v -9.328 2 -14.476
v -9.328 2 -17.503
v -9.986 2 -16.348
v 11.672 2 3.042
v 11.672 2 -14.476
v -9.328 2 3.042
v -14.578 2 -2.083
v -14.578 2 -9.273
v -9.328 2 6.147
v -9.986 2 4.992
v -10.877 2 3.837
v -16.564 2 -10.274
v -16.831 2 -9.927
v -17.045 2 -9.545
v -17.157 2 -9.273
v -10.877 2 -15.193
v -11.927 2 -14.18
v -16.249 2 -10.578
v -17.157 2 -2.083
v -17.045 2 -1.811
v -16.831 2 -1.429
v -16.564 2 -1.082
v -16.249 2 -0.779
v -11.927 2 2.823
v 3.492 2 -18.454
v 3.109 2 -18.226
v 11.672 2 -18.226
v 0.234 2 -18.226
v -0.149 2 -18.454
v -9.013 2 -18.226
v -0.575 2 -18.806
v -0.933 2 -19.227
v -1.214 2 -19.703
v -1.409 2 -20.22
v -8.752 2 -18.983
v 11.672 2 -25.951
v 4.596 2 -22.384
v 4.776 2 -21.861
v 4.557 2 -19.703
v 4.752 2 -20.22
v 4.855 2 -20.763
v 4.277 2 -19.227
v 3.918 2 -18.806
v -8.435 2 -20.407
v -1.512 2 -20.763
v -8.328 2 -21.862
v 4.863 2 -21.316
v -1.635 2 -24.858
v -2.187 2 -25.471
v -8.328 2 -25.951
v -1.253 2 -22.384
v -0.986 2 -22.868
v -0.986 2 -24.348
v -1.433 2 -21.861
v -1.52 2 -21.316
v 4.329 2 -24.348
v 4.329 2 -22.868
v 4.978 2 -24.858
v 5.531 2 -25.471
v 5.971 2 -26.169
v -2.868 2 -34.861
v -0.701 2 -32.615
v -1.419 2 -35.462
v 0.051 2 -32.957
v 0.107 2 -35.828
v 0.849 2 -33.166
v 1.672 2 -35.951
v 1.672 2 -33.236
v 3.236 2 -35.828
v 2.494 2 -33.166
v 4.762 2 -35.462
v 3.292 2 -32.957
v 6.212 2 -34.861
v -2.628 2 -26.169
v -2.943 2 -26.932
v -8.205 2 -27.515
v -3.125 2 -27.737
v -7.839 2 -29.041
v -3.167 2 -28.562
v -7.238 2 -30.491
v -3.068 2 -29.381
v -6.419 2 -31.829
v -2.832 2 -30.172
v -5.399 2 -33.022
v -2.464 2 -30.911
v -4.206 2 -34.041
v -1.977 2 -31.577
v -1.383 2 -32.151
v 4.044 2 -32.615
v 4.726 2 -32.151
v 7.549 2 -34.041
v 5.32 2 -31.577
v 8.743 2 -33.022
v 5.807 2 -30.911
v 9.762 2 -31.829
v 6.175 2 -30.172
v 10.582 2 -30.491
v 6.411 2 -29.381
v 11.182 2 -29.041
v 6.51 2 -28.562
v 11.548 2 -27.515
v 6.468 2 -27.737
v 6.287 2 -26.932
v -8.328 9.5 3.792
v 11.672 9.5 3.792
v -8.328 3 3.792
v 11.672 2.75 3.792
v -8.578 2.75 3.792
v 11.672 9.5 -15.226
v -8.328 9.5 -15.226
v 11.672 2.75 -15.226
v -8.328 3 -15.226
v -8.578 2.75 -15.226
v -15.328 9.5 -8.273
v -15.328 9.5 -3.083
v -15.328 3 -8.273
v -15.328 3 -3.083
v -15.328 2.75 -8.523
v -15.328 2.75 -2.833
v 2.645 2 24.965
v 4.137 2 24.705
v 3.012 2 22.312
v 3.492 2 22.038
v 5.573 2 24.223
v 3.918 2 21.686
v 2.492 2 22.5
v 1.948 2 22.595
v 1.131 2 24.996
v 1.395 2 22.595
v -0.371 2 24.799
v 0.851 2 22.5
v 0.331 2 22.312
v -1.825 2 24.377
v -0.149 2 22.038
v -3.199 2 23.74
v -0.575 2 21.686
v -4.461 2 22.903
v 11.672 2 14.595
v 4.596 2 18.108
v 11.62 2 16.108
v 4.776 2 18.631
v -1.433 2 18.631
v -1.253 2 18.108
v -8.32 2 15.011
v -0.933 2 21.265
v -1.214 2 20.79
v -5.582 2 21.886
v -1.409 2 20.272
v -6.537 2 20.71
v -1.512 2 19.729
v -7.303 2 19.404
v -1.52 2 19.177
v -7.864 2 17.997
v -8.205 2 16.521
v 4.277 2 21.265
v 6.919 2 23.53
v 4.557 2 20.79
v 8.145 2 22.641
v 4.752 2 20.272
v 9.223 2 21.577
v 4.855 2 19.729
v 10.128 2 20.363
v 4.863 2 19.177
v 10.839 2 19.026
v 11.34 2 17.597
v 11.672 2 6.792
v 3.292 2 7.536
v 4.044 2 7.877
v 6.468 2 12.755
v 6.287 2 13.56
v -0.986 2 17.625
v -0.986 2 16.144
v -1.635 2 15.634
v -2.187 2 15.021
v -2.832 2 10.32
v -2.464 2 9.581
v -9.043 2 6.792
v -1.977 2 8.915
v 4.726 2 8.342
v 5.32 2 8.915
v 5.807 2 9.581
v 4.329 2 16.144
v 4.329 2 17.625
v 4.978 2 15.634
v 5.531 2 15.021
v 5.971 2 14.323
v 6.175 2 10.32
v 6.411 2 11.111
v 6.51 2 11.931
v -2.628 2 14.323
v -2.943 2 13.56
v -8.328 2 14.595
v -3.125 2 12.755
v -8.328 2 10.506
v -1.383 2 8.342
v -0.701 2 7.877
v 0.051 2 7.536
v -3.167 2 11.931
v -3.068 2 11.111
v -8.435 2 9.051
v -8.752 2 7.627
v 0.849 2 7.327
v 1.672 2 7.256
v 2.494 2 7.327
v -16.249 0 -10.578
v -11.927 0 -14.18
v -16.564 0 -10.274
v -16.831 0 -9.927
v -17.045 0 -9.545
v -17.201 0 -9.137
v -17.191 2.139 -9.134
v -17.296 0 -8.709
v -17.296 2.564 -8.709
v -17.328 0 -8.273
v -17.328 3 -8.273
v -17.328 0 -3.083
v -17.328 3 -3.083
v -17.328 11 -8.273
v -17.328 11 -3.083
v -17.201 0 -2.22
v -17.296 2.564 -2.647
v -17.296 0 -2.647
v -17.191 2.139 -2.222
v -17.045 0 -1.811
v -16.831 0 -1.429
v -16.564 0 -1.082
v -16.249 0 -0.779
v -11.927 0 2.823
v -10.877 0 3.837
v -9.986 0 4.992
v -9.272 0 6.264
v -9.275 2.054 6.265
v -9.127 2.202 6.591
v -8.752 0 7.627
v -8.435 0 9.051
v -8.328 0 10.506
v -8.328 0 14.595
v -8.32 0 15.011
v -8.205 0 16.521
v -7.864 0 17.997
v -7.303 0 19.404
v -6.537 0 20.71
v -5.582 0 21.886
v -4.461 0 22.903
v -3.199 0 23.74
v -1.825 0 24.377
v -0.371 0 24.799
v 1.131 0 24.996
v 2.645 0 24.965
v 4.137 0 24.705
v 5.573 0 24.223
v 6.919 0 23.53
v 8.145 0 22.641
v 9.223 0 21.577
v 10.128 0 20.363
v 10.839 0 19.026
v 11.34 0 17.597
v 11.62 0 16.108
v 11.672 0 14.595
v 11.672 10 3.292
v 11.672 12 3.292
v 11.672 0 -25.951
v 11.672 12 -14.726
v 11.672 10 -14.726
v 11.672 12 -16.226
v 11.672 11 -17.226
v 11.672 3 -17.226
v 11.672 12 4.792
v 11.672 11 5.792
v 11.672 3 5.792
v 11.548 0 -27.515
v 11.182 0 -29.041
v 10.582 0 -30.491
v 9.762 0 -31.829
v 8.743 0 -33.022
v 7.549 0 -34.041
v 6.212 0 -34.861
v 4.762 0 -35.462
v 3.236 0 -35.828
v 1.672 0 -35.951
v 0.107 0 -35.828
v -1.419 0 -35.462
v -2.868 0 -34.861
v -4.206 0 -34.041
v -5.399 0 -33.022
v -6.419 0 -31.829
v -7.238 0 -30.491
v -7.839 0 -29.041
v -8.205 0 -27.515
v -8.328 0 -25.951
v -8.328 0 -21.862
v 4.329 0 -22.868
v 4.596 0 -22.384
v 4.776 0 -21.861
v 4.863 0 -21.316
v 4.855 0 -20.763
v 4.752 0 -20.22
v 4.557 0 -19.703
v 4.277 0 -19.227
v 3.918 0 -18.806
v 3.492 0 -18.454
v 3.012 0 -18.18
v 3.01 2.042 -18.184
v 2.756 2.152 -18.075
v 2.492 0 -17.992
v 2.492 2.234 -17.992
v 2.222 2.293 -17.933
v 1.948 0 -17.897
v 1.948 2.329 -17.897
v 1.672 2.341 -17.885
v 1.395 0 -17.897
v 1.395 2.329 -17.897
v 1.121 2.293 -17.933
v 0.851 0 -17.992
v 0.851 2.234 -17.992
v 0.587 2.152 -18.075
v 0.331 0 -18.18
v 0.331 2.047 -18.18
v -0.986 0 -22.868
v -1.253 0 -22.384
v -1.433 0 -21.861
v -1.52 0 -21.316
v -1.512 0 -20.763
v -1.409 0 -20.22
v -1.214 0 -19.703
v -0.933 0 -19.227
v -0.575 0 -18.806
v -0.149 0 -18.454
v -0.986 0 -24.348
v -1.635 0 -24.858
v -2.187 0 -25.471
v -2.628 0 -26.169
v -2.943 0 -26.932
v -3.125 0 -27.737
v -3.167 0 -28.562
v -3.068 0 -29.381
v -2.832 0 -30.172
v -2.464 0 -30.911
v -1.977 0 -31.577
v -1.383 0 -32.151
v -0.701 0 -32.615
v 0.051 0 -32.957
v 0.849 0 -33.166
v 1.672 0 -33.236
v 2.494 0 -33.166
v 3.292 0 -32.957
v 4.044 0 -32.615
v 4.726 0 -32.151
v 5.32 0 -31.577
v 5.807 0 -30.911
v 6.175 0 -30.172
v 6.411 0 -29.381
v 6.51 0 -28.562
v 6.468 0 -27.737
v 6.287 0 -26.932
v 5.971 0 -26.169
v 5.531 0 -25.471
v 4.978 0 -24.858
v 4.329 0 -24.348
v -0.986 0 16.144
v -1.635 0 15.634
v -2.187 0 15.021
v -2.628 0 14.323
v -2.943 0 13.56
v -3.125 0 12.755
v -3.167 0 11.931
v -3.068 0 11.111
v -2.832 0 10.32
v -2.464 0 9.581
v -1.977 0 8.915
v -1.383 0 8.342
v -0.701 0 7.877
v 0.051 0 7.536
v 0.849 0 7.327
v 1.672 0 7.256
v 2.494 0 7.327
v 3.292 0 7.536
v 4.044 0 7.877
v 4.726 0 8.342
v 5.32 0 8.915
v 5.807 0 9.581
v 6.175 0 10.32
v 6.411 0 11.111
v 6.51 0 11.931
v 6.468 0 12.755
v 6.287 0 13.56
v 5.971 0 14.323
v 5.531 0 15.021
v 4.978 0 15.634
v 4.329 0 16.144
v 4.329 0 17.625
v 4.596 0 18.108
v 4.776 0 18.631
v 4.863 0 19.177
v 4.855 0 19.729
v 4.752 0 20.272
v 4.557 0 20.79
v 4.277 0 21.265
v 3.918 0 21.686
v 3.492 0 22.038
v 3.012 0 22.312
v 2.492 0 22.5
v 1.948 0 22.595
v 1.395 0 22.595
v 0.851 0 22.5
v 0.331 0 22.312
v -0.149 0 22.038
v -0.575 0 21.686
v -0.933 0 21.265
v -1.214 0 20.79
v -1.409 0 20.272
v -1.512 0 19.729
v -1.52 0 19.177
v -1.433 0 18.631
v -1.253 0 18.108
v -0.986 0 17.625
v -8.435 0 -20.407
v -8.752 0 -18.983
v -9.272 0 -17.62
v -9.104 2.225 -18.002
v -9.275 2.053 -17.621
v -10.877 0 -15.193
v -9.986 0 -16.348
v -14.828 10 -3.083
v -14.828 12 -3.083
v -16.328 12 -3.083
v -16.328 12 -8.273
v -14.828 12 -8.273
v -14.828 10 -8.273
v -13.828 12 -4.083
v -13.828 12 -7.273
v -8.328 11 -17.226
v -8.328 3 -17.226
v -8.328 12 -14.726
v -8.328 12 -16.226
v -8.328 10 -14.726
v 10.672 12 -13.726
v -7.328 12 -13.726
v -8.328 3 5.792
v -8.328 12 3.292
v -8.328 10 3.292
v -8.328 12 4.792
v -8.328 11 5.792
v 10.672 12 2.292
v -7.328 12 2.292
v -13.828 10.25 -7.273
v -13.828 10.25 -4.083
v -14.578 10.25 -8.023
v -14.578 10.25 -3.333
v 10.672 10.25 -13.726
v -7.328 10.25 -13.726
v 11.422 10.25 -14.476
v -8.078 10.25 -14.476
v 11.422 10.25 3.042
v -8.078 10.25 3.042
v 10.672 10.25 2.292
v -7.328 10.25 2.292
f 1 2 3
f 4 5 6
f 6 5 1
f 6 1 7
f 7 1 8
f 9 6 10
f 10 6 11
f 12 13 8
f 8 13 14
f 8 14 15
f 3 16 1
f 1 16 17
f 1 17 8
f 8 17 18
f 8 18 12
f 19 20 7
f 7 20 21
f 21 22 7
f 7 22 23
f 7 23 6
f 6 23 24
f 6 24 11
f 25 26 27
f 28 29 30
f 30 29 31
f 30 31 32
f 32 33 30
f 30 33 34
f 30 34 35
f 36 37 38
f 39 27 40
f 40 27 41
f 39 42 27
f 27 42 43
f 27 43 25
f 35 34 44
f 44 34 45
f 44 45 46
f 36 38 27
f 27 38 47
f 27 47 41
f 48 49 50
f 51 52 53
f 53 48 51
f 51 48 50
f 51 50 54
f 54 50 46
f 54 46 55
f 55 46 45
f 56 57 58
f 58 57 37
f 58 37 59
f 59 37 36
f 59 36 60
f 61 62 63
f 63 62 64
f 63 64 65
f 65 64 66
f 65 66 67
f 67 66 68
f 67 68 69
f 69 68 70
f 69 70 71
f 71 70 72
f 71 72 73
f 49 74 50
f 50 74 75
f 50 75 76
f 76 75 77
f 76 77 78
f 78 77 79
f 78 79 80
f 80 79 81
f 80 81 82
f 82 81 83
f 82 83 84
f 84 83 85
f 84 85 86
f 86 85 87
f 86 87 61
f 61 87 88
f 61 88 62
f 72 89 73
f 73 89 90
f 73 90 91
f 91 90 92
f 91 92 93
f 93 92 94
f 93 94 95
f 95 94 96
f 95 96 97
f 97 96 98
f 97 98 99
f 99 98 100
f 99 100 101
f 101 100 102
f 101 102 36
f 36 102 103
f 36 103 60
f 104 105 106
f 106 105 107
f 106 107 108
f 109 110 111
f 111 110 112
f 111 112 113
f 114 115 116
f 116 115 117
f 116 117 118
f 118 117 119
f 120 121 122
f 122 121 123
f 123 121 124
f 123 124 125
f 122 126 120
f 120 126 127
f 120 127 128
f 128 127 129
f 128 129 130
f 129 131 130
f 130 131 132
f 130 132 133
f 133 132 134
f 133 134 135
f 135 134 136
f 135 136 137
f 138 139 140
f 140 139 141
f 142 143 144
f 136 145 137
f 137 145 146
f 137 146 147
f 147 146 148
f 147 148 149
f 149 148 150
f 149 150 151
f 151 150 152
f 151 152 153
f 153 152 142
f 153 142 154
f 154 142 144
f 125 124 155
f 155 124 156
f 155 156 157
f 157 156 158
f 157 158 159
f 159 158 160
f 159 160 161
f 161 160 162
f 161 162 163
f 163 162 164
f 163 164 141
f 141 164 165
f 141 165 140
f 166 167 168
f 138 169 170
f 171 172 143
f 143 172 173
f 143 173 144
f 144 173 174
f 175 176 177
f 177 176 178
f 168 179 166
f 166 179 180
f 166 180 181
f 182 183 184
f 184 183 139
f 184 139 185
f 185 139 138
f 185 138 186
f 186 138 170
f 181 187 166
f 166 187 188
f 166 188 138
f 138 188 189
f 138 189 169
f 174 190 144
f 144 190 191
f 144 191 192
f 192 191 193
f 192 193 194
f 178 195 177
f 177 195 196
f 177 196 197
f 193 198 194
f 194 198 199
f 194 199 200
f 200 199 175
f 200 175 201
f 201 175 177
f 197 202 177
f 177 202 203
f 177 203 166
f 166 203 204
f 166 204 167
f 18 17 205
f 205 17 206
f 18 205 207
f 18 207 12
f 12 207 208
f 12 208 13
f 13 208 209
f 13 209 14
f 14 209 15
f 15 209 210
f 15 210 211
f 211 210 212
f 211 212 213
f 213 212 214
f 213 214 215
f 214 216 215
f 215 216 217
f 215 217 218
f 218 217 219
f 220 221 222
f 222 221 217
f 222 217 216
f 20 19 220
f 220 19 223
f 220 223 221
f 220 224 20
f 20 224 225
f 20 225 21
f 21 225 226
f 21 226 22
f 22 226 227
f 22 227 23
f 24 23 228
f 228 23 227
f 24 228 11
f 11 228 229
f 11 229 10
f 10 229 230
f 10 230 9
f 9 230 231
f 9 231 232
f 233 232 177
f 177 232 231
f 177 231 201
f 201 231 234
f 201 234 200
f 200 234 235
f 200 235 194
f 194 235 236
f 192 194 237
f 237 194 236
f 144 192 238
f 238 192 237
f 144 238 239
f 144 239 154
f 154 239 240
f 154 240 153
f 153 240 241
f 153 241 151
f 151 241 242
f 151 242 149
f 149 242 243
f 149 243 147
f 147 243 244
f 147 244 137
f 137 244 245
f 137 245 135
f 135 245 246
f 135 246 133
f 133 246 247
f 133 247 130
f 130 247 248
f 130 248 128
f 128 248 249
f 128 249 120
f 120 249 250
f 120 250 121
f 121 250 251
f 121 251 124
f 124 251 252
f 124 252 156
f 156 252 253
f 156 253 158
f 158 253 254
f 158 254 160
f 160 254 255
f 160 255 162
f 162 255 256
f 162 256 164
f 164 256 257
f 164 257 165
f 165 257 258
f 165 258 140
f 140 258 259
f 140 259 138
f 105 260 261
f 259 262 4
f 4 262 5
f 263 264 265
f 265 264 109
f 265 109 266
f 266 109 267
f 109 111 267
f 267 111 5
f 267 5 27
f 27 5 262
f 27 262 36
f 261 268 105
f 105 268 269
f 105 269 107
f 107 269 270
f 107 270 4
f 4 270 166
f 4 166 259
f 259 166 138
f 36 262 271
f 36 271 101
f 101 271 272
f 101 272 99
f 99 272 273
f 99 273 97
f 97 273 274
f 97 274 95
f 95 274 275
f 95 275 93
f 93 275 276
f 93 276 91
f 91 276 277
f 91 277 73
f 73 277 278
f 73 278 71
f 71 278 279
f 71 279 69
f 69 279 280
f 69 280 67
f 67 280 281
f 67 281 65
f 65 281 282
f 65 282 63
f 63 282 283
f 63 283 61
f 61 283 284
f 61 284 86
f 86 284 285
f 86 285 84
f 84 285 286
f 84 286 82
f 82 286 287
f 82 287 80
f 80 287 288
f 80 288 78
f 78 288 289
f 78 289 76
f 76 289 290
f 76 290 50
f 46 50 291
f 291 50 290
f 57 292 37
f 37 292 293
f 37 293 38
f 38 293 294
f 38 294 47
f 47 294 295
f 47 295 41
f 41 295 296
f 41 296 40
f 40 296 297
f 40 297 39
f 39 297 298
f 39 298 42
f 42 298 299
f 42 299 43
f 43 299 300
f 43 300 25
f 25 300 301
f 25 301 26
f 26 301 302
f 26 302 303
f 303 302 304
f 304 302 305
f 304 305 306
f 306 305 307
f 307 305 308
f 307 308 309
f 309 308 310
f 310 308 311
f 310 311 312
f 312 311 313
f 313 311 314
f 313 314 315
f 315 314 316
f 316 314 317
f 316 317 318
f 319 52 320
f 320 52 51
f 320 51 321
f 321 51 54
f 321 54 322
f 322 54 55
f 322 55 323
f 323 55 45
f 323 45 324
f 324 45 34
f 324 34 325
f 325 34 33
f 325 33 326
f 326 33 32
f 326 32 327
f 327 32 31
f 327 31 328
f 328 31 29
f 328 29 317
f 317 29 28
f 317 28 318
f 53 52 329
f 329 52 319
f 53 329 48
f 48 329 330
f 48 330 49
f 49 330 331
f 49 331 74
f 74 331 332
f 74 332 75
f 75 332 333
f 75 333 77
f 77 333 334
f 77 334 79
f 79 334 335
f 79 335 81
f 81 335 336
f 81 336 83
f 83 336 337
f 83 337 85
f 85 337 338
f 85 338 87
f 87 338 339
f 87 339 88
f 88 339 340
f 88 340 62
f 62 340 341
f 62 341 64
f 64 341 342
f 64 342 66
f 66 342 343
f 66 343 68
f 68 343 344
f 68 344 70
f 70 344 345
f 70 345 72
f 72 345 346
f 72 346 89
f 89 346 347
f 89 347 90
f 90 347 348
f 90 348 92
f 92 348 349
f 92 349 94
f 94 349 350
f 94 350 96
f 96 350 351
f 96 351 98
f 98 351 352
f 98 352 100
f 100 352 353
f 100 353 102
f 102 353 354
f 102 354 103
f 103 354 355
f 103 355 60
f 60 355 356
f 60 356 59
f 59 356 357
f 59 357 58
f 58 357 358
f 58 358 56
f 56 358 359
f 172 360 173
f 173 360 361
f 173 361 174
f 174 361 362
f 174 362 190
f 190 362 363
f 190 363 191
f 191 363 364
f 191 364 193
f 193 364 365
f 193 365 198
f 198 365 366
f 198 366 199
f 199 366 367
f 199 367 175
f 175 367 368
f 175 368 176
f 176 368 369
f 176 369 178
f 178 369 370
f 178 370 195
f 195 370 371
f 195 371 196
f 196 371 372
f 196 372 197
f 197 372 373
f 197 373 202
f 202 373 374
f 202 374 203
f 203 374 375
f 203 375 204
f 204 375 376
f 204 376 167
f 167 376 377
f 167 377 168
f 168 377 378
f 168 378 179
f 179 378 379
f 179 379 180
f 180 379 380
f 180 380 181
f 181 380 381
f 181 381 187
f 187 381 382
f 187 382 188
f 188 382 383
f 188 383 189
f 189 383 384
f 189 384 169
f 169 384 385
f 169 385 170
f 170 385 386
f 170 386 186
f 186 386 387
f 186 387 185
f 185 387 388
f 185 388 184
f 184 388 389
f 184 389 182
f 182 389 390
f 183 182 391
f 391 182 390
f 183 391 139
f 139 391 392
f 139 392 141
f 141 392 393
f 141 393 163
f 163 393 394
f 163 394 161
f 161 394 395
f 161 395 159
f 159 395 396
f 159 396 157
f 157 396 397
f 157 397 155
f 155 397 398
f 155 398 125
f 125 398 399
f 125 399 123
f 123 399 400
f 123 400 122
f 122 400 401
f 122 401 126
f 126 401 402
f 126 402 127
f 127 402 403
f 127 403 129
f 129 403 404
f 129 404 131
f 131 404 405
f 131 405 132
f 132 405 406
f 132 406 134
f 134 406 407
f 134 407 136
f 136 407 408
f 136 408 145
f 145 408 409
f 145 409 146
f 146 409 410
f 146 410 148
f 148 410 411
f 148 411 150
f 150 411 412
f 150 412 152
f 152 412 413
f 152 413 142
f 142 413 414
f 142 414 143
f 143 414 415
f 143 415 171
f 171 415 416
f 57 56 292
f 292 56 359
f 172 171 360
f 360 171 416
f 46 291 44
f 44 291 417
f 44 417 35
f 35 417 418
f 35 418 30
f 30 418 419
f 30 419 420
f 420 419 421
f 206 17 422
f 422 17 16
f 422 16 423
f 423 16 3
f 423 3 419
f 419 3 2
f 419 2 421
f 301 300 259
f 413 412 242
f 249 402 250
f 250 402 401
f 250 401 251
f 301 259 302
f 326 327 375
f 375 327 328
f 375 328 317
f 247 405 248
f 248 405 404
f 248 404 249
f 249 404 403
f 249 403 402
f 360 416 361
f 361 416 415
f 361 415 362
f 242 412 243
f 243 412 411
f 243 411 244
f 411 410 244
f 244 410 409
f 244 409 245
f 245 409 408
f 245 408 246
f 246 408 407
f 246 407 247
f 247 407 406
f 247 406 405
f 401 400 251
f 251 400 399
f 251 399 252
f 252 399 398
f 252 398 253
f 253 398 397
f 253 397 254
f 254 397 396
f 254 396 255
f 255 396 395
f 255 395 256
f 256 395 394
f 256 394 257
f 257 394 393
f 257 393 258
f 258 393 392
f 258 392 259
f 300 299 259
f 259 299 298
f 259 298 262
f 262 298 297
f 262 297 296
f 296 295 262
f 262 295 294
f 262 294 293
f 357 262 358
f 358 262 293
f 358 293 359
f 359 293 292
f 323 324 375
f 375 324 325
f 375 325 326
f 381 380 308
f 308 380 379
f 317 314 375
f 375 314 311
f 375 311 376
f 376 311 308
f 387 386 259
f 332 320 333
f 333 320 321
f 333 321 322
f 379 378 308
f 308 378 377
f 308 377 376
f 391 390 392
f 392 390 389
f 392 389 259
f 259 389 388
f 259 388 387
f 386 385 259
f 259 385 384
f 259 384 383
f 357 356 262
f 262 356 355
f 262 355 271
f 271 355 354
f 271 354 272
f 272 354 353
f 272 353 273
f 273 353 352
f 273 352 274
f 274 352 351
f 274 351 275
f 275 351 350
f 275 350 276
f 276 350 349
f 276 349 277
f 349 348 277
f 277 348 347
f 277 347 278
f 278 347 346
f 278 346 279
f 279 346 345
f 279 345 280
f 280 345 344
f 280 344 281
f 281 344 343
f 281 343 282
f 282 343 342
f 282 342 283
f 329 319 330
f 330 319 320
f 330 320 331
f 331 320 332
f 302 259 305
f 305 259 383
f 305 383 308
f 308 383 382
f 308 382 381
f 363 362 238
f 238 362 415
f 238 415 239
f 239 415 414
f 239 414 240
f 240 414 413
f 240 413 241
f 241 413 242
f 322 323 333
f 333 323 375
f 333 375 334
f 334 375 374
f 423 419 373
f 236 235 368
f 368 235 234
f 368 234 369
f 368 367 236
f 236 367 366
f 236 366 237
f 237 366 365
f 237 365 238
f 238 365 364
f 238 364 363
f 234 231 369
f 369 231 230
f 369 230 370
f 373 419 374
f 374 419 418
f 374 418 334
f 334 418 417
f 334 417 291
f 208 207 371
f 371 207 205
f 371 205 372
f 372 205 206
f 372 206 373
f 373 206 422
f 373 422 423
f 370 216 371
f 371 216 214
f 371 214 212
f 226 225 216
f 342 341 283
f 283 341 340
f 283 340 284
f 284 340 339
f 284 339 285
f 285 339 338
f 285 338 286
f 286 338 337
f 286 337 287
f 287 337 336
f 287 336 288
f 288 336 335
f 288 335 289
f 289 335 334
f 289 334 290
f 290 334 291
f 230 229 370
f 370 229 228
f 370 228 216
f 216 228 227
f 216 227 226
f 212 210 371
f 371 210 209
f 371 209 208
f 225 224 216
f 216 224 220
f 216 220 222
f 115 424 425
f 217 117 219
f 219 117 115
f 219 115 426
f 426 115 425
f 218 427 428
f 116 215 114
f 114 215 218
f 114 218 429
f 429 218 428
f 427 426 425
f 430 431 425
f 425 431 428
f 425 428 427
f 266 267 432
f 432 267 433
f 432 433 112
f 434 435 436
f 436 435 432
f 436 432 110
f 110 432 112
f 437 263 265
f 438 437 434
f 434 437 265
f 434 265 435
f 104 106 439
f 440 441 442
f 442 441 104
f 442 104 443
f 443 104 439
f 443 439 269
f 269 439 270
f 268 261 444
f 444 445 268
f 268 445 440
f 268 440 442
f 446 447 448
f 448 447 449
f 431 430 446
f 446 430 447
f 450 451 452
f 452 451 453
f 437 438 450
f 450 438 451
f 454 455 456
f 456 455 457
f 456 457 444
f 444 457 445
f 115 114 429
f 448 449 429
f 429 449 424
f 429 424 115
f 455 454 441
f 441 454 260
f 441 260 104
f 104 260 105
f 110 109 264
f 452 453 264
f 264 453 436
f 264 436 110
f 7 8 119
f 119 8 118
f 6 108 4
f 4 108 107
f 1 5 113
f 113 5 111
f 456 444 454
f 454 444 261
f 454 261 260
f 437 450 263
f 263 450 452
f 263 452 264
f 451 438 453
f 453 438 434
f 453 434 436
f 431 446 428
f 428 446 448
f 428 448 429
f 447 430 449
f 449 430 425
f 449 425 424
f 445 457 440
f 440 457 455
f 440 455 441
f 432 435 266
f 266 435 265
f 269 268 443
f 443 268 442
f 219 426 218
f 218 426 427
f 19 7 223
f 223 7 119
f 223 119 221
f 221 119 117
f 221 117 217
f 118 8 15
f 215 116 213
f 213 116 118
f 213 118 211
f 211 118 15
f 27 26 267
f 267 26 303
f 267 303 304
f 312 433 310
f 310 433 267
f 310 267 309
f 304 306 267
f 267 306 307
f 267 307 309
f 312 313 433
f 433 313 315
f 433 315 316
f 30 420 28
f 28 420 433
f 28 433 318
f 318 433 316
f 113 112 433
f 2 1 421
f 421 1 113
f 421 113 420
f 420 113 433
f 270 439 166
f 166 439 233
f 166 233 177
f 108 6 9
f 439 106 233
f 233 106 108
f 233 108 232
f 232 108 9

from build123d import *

# Parameters (mm, degrees)
BOSS_EXTRUDE3_DEPTH = 2
SKETCH2_W           = 2
SKETCH2_H           = 5.189750324
SKETCH2_W_2         = 20
SKETCH2_H_2         = 2
BOSS_EXTRUDE4_DEPTH = 10
SKETCH3_W           = 5.189750324
SKETCH3_H           = 1.75
BOSS_EXTRUDE5_DEPTH = 1.5
SKETCH4_W           = 20
SKETCH4_H           = 1.75
BOSS_EXTRUDE6_DEPTH = 1.5
SKETCH5_W           = 20
SKETCH5_H           = 1.75
BOSS_EXTRUDE7_DEPTH = 1.5
CHAMFER1_SIZE       = 0.75
CHAMFER2_SIZE       = 1


with BuildPart() as part:
    # Sketch1 → Boss-Extrude3 (new body)
    with BuildSketch(Plane(origin=(0, 0, 0), x_dir=(1, 0, 0), z_dir=(0, 1, 0))):
        with BuildLine():
            Line((-11.926539406, 14.179618856), (-16.248936601, 10.577621193))
            ThreePointArc((-16.248936601, 10.577621193), (-17.045151666, 9.545423543), (-17.328383402, 8.272957354))
            Line((-17.328383402, 8.272957354), (-17.328383402, 3.08320703))
            ThreePointArc((-17.328383402, 3.08320703), (-17.045151666, 1.810740841), (-16.248936601, 0.778543191))
            Line((-16.248936601, 0.778543191), (-11.926539406, -2.823454472))
            ThreePointArc((-11.926539406, -2.823454472), (-9.27248919, -6.264113306), (-8.328383402, -10.505667268))
            Line((-8.328383402, -10.505667268), (-8.328383402, -14.594989625))
            Line((-8.328383402, -14.594989625), (-8.319708249, -15.011436268))
            ThreePointArc((-8.319708249, -15.011436268), (1.888560246, -25.009267244), (11.671616598, -14.594989625))
            Line((11.671616598, -14.594989625), (11.671616598, -5.821917808))
            Line((11.671616598, -5.821917808), (11.671616598, 17.178082192))
            Line((11.671616598, 17.178082192), (11.671616598, 25.951154008))
            ThreePointArc((11.671616598, 25.951154008), (1.671616598, 35.951154008), (-8.328383402, 25.951154008))
            Line((-8.328383402, 25.951154008), (-8.328383402, 21.861831652))
            ThreePointArc((-8.328383402, 21.861831652), (-9.27248919, 17.620277689), (-11.926539406, 14.179618856))
        make_face()
        with BuildLine():
            ThreePointArc((4.32930425, -16.144178085), (1.671616598, -7.256310151), (-0.986071055, -16.144178085))
            Line((-0.986071055, -16.144178085), (-0.986071055, -17.62452967))
            ThreePointArc((-0.986071055, -17.62452967), (1.671616598, -22.60685858), (4.32930425, -17.62452967))
            Line((4.32930425, -17.62452967), (4.32930425, -16.144178085))
        make_face(mode=Mode.SUBTRACT)
        with BuildLine():
            ThreePointArc((-0.986071055, 22.867739584), (1.671616598, 17.885410674), (4.32930425, 22.867739584))
            Line((4.32930425, 22.867739584), (4.32930425, 24.348091169))
            ThreePointArc((4.32930425, 24.348091169), (1.671616598, 33.235959102), (-0.986071055, 24.348091169))
            Line((-0.986071055, 24.348091169), (-0.986071055, 22.867739584))
        make_face(mode=Mode.SUBTRACT)
    extrude(amount=BOSS_EXTRUDE3_DEPTH)

    # Sketch2 → Boss-Extrude4 (add)
    with BuildSketch(Plane(origin=(0, 2, 0), x_dir=(1, 0, 0), z_dir=(0, 1, 0))):
        with Locations((-16.328383402, 5.678082192)):
            Rectangle(SKETCH2_W, SKETCH2_H)
        with Locations((1.671616598, 16.226428568)):
            Rectangle(SKETCH2_W_2, SKETCH2_H_2)
        with Locations((1.671616598, -4.792288058)):
            Rectangle(SKETCH2_W_2, SKETCH2_H_2)
    extrude(amount=BOSS_EXTRUDE4_DEPTH)

    # Sketch3 → Boss-Extrude5 (add)
    with BuildSketch(Plane(origin=(-15.328383402, 0, 0), x_dir=(0, 0, -1), z_dir=(1, 0, 0))):
        with Locations((5.678082192, 11.125)):
            Rectangle(SKETCH3_W, SKETCH3_H)
    extrude(amount=BOSS_EXTRUDE5_DEPTH)

    # Sketch4 → Boss-Extrude6 (add)
    with BuildSketch(Plane.XY.offset(-15.226428568)):
        with Locations((1.671616598, 11.125)):
            Rectangle(SKETCH4_W, SKETCH4_H)
    extrude(amount=BOSS_EXTRUDE6_DEPTH)

    # Sketch5 → Boss-Extrude7 (add)
    with BuildSketch(Plane(origin=(0, 0, 3.792288058), x_dir=(-1, 0, 0), z_dir=(0, 0, -1))):
        with Locations((-1.671616598, 11.125)):
            Rectangle(SKETCH5_W, SKETCH5_H)
    extrude(amount=BOSS_EXTRUDE7_DEPTH)

    # Chamfer1
    chamfer1_edges = [part.edges().sort_by_distance(p)[0] for p in [
        (-15.328383402, 10.25, -5.678082192),
        (1.671616598, 10.25, -15.226428568),
        (1.671616598, 10.25, 3.792288058),
        (-15.328383402, 2, -5.678082192),
        (1.671616598, 2, -15.226428568),
        (1.671616598, 2, 3.792288058),
    ]]
    chamfer(chamfer1_edges, length=CHAMFER1_SIZE)

    # Chamfer2
    # the kernel refuses this chamfer: 1 mm, written as the material it adds along each edge
    with BuildSketch(Plane(origin=(-12.006700414, 2, -3.08320703), x_dir=(0, 0, 1), z_dir=(-1, 0, 0))) as chamfer2_piece_1_section:
        Polygon((CHAMFER2_SIZE, 0), (0, CHAMFER2_SIZE), (0, 0), align=None)
    chamfer2_piece_1 = extrude(amount=7.893365976, mode=Mode.PRIVATE)
    chamfer2_piece_1 = split(chamfer2_piece_1, bisect_by=Plane(origin=(-15.328383402, 2, -3.08320703), z_dir=(-1, 0, 0)), keep=Keep.TOP, mode=Mode.PRIVATE)
    chamfer2_piece_1 = chamfer2_piece_1 & Plane(origin=(-14.328383402, 2, -3.08320703), x_dir=(-1, 0, 0), z_dir=(0, -1, 0)) * Cylinder(3, 20, mode=Mode.PRIVATE)
    add(chamfer2_piece_1)
    with BuildSketch(Plane(origin=(-12.006700414, 2, -3.08320703), x_dir=(0, 0, 1), z_dir=(-1, 0, 0))) as chamfer2_piece_2_section:
        Polygon((CHAMFER2_SIZE, 0), (0, CHAMFER2_SIZE), (0, 0), align=None)
    chamfer2_piece_2 = extrude(amount=7.893365976, mode=Mode.PRIVATE)
    chamfer2_piece_2 = split(chamfer2_piece_2, bisect_by=Plane(origin=(-15.328383402, 2, -3.08320703), z_dir=(1, 0, 0)), keep=Keep.TOP, mode=Mode.PRIVATE)
    chamfer2_piece_2 = split(chamfer2_piece_2, bisect_by=Plane(origin=(-13.292541908, 0.714158506, -3.08320703), z_dir=(-0.7071067811865476, -0.7071067811865476, 0)), keep=Keep.TOP, mode=Mode.PRIVATE)
    add(chamfer2_piece_2)
    with BuildSketch(Plane(origin=(-19.90006639, 2, -8.272957354), x_dir=(0, 0, -1), z_dir=(1, 0, 0))) as chamfer2_piece_3_section:
        Polygon((CHAMFER2_SIZE, 0), (0, CHAMFER2_SIZE), (0, 0), align=None)
    chamfer2_piece_3 = extrude(amount=7.893365976, mode=Mode.PRIVATE)
    chamfer2_piece_3 = split(chamfer2_piece_3, bisect_by=Plane(origin=(-17.239224896, 4.660841494, -8.272957354), z_dir=(-0.7071067811865476, -0.7071067811865476, 0)), keep=Keep.TOP, mode=Mode.PRIVATE)
    chamfer2_piece_3 = chamfer2_piece_3 & Plane(origin=(-14.328383402, 2, -8.272957354), x_dir=(-0.6401843996644775, 0, -0.7682212795973778), z_dir=(0, -1, 0)) * Cylinder(3, 20, mode=Mode.PRIVATE)
    add(chamfer2_piece_3)
    with BuildSketch(Plane(origin=(-19.90006639, 2, -8.272957354), x_dir=(0, 0, -1), z_dir=(1, 0, 0))) as chamfer2_piece_4_section:
        Polygon((CHAMFER2_SIZE, 0), (0, CHAMFER2_SIZE), (0, 0), align=None)
    chamfer2_piece_4 = extrude(amount=7.893365976, mode=Mode.PRIVATE)
    chamfer2_piece_4 = split(chamfer2_piece_4, bisect_by=Plane(origin=(-15.328383402, 2, -8.272957354), z_dir=(-1, 0, 0)), keep=Keep.TOP, mode=Mode.PRIVATE)
    chamfer2_piece_4 = split(chamfer2_piece_4, bisect_by=Plane(origin=(-17.239224896, 4.660841494, -8.272957354), z_dir=(0.7071067811865476, 0.7071067811865476, 0)), keep=Keep.TOP, mode=Mode.PRIVATE)
    add(chamfer2_piece_4)
    with BuildSketch(Plane(origin=(-8.328383402, 2, -11.90474558), x_dir=(-1, 0, 0), z_dir=(0, 0, -1))) as chamfer2_piece_5_section:
        Polygon((CHAMFER2_SIZE, 0), (0, CHAMFER2_SIZE), (0, 0), align=None)
    chamfer2_piece_5 = extrude(amount=5.321682988, mode=Mode.PRIVATE)
    chamfer2_piece_5 = split(chamfer2_piece_5, bisect_by=Plane(origin=(-8.328383402, 2, -15.226428568), z_dir=(0, 0, -1)), keep=Keep.TOP, mode=Mode.PRIVATE)
    add(chamfer2_piece_5)
    with BuildSketch(Plane(origin=(-8.328383402, 2, -11.90474558), x_dir=(-1, 0, 0), z_dir=(0, 0, -1))) as chamfer2_piece_6_section:
        Polygon((CHAMFER2_SIZE, 0), (0, CHAMFER2_SIZE), (0, 0), align=None)
    chamfer2_piece_6 = extrude(amount=7.893365976, mode=Mode.PRIVATE)
    chamfer2_piece_6 = split(chamfer2_piece_6, bisect_by=Plane(origin=(-8.328383402, 2, -15.226428568), z_dir=(0, 0, 1)), keep=Keep.TOP, mode=Mode.PRIVATE)
    chamfer2_piece_6 = split(chamfer2_piece_6, bisect_by=Plane(origin=(-8.328383402, 0.714158506, -13.190587074), z_dir=(0, -0.7071067811865476, -0.7071067811865476)), keep=Keep.TOP, mode=Mode.PRIVATE)
    add(chamfer2_piece_6)
    with BuildSketch(Plane(origin=(11.671616598, 2, -17.226428568), x_dir=(0, 0, -1), z_dir=(-1, 0, 0))) as chamfer2_piece_7_section:
        Polygon((CHAMFER2_SIZE, 0), (0, -CHAMFER2_SIZE), (0, 0), align=None)
    chamfer2_piece_7 = extrude(amount=20, mode=Mode.PRIVATE)
    chamfer2_piece_7 = chamfer2_piece_7 - Plane(origin=(1.671616598, 2, -21.085410674), x_dir=(-0.8305273914033934, 0, -0.5569777842326162), z_dir=(0, -1, 0)) * Cylinder(3.2, 44, mode=Mode.PRIVATE)
    add(chamfer2_piece_7)
    with BuildSketch(Plane(origin=(-8.328383402, 2, 5.792288058), x_dir=(-1, 0, 0), z_dir=(0, 0, -1))) as chamfer2_piece_8_section:
        Polygon((CHAMFER2_SIZE, 0), (0, CHAMFER2_SIZE), (0, 0), align=None)
    chamfer2_piece_8 = extrude(amount=5.321682988, mode=Mode.PRIVATE)
    chamfer2_piece_8 = split(chamfer2_piece_8, bisect_by=Plane(origin=(-8.328383402, 2, 3.792288058), z_dir=(0, 0, 1)), keep=Keep.TOP, mode=Mode.PRIVATE)
    add(chamfer2_piece_8)
    with BuildSketch(Plane(origin=(-8.328383402, 2, 5.792288058), x_dir=(-1, 0, 0), z_dir=(0, 0, -1))) as chamfer2_piece_9_section:
        Polygon((CHAMFER2_SIZE, 0), (0, CHAMFER2_SIZE), (0, 0), align=None)
    chamfer2_piece_9 = extrude(amount=5.321682988, mode=Mode.PRIVATE)
    chamfer2_piece_9 = split(chamfer2_piece_9, bisect_by=Plane(origin=(-8.328383402, 3.375, 4.417288058), z_dir=(0, -0.7071067811865476, 0.7071067811865476)), keep=Keep.TOP, mode=Mode.PRIVATE)
    add(chamfer2_piece_9)
    with BuildSketch(Plane(origin=(11.671616598, 2, 5.792288058), x_dir=(0, 0, 1), z_dir=(-1, 0, 0))) as chamfer2_piece_10:
        Polygon((CHAMFER2_SIZE, 0), (0, CHAMFER2_SIZE), (0, 0), align=None)
    extrude(amount=20)
    with BuildSketch(Plane(origin=(-8.328383402, 2, -11.90474558), x_dir=(-1, 0, 0), z_dir=(0, 0, -1))) as chamfer2_piece_11a_section:
        Polygon((CHAMFER2_SIZE, 0), (0, CHAMFER2_SIZE), (0, 0), align=None)
    chamfer2_piece_11a = extrude(amount=7.893365976, mode=Mode.PRIVATE)
    chamfer2_piece_11a = chamfer2_piece_11a - Plane(origin=(-18.328383402, 2, -21.861831652), x_dir=(1, 0, 0), z_dir=(0, -1, 0)) * Cylinder(10, 20, mode=Mode.PRIVATE)
    chamfer2_piece_11a = split(chamfer2_piece_11a, bisect_by=Plane(origin=(-8.328383402, 2, -17.226428568), z_dir=(0, 0, -1)), keep=Keep.TOP, mode=Mode.PRIVATE)
    with BuildSketch(Plane(origin=(11.671616598, 2, -17.226428568), x_dir=(0, 0, -1), z_dir=(-1, 0, 0))) as chamfer2_piece_11b_section:
        Polygon((CHAMFER2_SIZE, 0), (0, -CHAMFER2_SIZE), (0, 0), align=None)
    chamfer2_piece_11b = extrude(amount=22.571682988, mode=Mode.PRIVATE)
    chamfer2_piece_11b = chamfer2_piece_11b - Plane(origin=(-18.328383402, 2, -21.861831652), x_dir=(1, 0, 0), z_dir=(0, -1, 0)) * Cylinder(10, 50, mode=Mode.PRIVATE)
    chamfer2_piece_11b = split(chamfer2_piece_11b, bisect_by=Plane(origin=(-8.328383402, 2, -17.226428568), z_dir=(-1, 0, 0)), keep=Keep.TOP, mode=Mode.PRIVATE)
    chamfer2_piece_11 = chamfer2_piece_11a & chamfer2_piece_11b
    add(chamfer2_piece_11)
    with BuildSketch(Plane(origin=(11.671616598, 2, 5.792288058), x_dir=(0, 0, 1), z_dir=(-1, 0, 0))) as chamfer2_piece_12a_section:
        Polygon((CHAMFER2_SIZE, 0), (0, CHAMFER2_SIZE), (0, 0), align=None)
    chamfer2_piece_12a = extrude(amount=22.571682988, mode=Mode.PRIVATE)
    chamfer2_piece_12a = split(chamfer2_piece_12a, bisect_by=Plane(origin=(-8.328383402, 2, 5.792288058), z_dir=(-1, 0, 0)), keep=Keep.TOP, mode=Mode.PRIVATE)
    chamfer2_piece_12a = chamfer2_piece_12a - Plane(origin=(-18.328383402, 2, 10.505667268), x_dir=(0.6401843996644763, 0, -0.7682212795973788), z_dir=(0, -1, 0)) * Cylinder(10, 50, mode=Mode.PRIVATE)
    with BuildSketch(Plane(origin=(-8.328383402, 2, 8.363971046), x_dir=(-1, 0, 0), z_dir=(0, 0, -1))) as chamfer2_piece_12b_section:
        Polygon((CHAMFER2_SIZE, 0), (0, CHAMFER2_SIZE), (0, 0), align=None)
    chamfer2_piece_12b = extrude(amount=7.893365976, mode=Mode.PRIVATE)
    chamfer2_piece_12b = split(chamfer2_piece_12b, bisect_by=Plane(origin=(-8.328383402, 2, 5.792288058), z_dir=(0, 0, 1)), keep=Keep.TOP, mode=Mode.PRIVATE)
    chamfer2_piece_12b = chamfer2_piece_12b - Plane(origin=(-18.328383402, 2, 10.505667268), x_dir=(0.6401843996644763, 0, -0.7682212795973788), z_dir=(0, -1, 0)) * Cylinder(10, 20, mode=Mode.PRIVATE)
    chamfer2_piece_12 = chamfer2_piece_12a & chamfer2_piece_12b
    add(chamfer2_piece_12)
    # the kernel refuses this chamfer: 1 mm, written as the material it takes off along each edge
    with BuildSketch(Plane(origin=(11.671616598, 14.571682988, 2.292288058), x_dir=(-1, 0, 0), z_dir=(0, -1, 0)), Plane(origin=(-13.828383402, 7.678317012, -8.272957354), x_dir=(0, 0, 1), z_dir=(0, 1, 0)), Plane(origin=(-8.328383402, 7.678317012, 2.292288058), x_dir=(1, 0, 0), z_dir=(0, 1, 0))) as chamfer2_2_piece_1:
        Polygon((CHAMFER2_SIZE, 0), (0, -CHAMFER2_SIZE), (0, 0), align=None)
    extrude(amount=6.893365976, mode=Mode.SUBTRACT)
    with BuildSketch(Plane(origin=(11.671616598, 14.571682988, -13.726428568), x_dir=(-1, 0, 0), z_dir=(0, -1, 0)), Plane(origin=(-8.328383402, 7.678317012, -13.726428568), x_dir=(1, 0, 0), z_dir=(0, 1, 0)), Plane(origin=(-13.828383402, 14.571682988, -3.08320703), x_dir=(-1, 0, 0), z_dir=(0, -1, 0))) as chamfer2_2_piece_2:
        Polygon((CHAMFER2_SIZE, 0), (0, CHAMFER2_SIZE), (0, 0), align=None)
    extrude(amount=6.893365976, mode=Mode.SUBTRACT)
    with BuildSketch(Plane(origin=(14.243299586, 12, -17.226428568), x_dir=(0, -1, 0), z_dir=(-1, 0, 0)), Plane(origin=(14.243299586, 12, 5.792288058), x_dir=(0, 0, -1), z_dir=(-1, 0, 0))) as chamfer2_2_piece_3:
        Polygon((CHAMFER2_SIZE, 0), (0, CHAMFER2_SIZE), (0, 0), align=None)
    extrude(amount=25.143365976, mode=Mode.SUBTRACT)
    with BuildSketch(Plane(origin=(-17.328383402, 12, -0.511524042), x_dir=(0, -1, 0), z_dir=(0, 0, -1))) as chamfer2_2_piece_4:
        Polygon((CHAMFER2_SIZE, 0), (0, -CHAMFER2_SIZE), (0, 0), align=None)
    extrude(amount=10.3331163, mode=Mode.SUBTRACT)


solid = part.part
